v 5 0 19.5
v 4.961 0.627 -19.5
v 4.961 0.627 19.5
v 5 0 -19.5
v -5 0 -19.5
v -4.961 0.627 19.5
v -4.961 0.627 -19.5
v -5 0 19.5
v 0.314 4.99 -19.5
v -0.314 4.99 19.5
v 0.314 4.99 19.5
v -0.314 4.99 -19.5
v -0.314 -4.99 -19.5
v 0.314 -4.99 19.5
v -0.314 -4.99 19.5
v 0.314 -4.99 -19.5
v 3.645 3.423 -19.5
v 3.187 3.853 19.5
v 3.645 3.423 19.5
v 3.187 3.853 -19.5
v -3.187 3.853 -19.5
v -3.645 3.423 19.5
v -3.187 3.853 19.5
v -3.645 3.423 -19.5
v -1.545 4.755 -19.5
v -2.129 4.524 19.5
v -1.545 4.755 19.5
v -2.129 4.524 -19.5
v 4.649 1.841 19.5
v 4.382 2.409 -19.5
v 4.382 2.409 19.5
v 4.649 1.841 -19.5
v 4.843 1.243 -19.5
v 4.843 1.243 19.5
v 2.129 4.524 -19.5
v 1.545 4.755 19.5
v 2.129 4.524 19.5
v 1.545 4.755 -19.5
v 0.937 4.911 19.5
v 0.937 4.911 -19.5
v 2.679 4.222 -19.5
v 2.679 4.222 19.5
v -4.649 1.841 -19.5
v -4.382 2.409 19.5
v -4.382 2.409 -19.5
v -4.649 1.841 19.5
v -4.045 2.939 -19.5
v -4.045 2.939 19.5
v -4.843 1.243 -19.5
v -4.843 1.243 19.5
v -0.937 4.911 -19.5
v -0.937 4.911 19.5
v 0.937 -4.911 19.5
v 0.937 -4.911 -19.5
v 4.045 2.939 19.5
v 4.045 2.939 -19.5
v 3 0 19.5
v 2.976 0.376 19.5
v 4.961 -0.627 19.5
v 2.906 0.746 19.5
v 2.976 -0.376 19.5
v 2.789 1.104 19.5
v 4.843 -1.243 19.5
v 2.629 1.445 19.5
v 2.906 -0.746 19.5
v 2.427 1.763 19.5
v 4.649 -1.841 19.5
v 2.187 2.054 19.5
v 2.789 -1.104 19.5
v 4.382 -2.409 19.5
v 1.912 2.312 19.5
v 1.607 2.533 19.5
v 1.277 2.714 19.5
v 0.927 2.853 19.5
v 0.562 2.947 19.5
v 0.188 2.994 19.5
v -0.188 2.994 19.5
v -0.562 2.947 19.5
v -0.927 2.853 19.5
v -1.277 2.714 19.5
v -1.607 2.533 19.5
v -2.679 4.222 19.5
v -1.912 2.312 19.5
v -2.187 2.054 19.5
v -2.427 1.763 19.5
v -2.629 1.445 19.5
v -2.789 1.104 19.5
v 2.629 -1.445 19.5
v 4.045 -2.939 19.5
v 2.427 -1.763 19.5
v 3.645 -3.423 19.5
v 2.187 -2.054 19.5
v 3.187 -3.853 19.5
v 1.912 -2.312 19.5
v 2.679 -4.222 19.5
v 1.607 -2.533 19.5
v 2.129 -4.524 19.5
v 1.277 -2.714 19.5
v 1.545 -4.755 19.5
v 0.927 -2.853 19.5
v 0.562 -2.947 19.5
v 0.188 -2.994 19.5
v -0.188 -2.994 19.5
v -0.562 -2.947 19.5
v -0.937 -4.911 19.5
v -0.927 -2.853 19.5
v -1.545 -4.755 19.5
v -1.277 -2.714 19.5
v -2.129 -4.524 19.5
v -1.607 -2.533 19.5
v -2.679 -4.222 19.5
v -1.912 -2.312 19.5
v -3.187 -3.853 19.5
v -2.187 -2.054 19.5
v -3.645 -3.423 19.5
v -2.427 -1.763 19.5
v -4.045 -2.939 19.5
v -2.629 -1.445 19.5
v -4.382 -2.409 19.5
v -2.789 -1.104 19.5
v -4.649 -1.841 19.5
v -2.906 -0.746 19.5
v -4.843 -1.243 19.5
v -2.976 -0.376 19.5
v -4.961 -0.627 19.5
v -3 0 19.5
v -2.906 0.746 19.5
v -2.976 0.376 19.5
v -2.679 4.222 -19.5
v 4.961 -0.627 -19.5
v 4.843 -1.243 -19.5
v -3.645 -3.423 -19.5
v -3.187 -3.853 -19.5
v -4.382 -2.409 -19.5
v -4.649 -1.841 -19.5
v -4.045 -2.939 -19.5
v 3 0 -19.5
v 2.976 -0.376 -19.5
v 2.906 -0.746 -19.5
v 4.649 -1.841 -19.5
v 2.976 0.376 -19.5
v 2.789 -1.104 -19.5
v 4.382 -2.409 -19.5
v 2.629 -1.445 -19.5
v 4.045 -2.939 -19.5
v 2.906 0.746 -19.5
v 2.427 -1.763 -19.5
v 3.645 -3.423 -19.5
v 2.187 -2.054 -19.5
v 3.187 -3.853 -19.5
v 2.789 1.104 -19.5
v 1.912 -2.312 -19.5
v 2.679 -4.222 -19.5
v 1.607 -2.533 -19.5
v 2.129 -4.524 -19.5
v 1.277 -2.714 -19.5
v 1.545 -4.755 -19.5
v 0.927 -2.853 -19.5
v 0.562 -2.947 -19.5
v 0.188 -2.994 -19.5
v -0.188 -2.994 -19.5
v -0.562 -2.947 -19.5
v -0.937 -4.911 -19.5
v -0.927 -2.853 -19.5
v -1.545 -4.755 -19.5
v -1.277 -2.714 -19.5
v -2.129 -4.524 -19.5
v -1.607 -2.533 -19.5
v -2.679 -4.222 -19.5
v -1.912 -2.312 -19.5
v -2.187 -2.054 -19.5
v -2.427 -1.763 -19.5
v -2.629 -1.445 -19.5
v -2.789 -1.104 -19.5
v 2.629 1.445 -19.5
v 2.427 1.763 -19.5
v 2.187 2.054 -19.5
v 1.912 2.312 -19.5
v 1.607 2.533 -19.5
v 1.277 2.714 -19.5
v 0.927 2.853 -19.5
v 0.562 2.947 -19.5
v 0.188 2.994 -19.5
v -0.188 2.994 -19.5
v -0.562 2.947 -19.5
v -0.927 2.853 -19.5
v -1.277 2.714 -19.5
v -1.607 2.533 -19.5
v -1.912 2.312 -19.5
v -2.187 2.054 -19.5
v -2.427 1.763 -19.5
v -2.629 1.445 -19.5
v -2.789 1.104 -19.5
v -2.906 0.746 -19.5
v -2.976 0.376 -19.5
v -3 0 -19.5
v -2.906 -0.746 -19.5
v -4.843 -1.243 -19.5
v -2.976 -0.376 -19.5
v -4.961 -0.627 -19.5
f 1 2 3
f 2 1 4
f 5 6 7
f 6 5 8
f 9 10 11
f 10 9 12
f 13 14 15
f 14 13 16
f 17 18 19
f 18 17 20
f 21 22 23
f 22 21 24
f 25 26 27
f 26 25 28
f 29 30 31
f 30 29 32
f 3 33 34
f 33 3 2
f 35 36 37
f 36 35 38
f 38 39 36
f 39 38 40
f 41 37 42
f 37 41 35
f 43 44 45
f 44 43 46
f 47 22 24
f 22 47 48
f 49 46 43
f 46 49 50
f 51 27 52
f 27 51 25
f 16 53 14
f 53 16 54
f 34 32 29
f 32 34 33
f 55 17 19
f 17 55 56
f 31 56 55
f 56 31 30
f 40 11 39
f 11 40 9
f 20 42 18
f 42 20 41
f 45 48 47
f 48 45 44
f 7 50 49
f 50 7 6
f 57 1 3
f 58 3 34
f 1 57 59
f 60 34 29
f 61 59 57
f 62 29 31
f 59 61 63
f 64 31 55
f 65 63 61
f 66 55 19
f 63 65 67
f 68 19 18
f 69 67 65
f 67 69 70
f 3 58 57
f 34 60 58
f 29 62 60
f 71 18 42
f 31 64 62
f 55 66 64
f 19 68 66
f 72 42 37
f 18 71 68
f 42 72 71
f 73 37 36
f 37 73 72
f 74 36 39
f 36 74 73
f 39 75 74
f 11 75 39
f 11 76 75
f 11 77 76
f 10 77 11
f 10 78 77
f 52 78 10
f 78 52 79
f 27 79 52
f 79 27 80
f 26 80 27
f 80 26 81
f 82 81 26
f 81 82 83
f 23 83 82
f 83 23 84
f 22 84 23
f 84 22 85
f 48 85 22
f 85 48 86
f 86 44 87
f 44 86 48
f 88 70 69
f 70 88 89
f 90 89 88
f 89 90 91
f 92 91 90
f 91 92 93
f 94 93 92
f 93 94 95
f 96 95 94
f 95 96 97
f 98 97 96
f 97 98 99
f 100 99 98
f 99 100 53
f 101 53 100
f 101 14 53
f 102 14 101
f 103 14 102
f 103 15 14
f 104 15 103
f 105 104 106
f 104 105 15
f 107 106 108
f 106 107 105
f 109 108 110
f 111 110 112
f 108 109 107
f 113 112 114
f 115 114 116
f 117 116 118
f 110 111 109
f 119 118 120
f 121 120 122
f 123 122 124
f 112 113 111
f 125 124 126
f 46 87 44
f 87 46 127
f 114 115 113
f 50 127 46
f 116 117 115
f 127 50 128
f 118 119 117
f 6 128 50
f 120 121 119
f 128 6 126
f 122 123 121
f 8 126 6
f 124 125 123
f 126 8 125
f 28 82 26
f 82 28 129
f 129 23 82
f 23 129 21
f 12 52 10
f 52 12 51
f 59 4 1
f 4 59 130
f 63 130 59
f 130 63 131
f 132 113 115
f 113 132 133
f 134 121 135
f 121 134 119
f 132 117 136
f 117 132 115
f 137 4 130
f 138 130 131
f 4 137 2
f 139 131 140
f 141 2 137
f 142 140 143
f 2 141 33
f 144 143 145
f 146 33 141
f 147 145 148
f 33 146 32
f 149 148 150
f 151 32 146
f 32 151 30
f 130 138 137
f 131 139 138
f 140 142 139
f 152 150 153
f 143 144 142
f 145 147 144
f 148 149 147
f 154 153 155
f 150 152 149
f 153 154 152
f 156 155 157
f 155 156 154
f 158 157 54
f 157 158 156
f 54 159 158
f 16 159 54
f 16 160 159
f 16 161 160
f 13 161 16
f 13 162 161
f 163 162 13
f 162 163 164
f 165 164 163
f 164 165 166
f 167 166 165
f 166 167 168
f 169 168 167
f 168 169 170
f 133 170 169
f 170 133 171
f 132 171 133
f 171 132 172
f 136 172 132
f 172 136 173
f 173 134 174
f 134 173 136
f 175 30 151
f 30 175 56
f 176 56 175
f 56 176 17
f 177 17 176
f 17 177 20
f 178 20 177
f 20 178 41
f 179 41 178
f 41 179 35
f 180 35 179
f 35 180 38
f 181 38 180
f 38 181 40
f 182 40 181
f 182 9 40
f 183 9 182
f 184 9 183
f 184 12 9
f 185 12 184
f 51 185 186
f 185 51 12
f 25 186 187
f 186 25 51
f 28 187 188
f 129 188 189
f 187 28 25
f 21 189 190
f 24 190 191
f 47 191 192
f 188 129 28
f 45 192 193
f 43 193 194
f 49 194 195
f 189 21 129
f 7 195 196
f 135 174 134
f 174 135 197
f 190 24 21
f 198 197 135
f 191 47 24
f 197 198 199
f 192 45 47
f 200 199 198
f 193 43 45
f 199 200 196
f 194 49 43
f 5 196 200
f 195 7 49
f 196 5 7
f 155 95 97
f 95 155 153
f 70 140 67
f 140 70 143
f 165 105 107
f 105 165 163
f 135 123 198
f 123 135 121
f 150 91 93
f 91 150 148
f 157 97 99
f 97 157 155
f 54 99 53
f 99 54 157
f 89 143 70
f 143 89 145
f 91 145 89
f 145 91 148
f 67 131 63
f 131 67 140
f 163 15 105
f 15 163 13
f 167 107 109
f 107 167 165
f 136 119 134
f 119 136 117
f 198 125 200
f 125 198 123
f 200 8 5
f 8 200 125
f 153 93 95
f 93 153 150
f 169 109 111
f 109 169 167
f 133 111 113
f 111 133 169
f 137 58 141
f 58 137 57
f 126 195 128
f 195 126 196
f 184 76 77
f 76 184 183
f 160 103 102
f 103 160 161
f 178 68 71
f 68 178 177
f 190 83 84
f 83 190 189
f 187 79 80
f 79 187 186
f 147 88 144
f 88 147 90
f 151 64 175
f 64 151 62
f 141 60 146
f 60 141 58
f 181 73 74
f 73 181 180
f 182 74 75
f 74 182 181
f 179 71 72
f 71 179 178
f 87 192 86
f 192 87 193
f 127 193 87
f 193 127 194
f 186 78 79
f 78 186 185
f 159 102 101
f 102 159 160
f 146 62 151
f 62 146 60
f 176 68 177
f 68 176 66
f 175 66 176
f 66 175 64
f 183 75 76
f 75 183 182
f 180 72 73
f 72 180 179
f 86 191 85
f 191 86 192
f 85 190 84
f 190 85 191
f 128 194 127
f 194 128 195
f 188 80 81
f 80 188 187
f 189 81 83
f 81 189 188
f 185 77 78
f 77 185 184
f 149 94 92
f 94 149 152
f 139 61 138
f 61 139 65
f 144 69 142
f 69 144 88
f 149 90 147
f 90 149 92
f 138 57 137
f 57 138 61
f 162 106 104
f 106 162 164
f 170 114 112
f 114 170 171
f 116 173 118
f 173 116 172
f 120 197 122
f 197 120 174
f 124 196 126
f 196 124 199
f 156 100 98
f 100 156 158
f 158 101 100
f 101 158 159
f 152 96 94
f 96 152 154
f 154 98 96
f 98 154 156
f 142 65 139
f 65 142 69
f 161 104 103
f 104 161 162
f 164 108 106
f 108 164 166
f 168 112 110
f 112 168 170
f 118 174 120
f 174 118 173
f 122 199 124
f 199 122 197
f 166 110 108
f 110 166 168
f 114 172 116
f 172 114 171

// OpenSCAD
$fn = 50;


difference() {
	union() {
		translate(v = [0, 0, -19.5000000000]) {
			cylinder(h = 39, r = 5.0000000000);
		}
	}
	union() {
		translate(v = [0, 0, -100.0000000000]) {
			cylinder(h = 200, r = 3);
		}
	}
}
